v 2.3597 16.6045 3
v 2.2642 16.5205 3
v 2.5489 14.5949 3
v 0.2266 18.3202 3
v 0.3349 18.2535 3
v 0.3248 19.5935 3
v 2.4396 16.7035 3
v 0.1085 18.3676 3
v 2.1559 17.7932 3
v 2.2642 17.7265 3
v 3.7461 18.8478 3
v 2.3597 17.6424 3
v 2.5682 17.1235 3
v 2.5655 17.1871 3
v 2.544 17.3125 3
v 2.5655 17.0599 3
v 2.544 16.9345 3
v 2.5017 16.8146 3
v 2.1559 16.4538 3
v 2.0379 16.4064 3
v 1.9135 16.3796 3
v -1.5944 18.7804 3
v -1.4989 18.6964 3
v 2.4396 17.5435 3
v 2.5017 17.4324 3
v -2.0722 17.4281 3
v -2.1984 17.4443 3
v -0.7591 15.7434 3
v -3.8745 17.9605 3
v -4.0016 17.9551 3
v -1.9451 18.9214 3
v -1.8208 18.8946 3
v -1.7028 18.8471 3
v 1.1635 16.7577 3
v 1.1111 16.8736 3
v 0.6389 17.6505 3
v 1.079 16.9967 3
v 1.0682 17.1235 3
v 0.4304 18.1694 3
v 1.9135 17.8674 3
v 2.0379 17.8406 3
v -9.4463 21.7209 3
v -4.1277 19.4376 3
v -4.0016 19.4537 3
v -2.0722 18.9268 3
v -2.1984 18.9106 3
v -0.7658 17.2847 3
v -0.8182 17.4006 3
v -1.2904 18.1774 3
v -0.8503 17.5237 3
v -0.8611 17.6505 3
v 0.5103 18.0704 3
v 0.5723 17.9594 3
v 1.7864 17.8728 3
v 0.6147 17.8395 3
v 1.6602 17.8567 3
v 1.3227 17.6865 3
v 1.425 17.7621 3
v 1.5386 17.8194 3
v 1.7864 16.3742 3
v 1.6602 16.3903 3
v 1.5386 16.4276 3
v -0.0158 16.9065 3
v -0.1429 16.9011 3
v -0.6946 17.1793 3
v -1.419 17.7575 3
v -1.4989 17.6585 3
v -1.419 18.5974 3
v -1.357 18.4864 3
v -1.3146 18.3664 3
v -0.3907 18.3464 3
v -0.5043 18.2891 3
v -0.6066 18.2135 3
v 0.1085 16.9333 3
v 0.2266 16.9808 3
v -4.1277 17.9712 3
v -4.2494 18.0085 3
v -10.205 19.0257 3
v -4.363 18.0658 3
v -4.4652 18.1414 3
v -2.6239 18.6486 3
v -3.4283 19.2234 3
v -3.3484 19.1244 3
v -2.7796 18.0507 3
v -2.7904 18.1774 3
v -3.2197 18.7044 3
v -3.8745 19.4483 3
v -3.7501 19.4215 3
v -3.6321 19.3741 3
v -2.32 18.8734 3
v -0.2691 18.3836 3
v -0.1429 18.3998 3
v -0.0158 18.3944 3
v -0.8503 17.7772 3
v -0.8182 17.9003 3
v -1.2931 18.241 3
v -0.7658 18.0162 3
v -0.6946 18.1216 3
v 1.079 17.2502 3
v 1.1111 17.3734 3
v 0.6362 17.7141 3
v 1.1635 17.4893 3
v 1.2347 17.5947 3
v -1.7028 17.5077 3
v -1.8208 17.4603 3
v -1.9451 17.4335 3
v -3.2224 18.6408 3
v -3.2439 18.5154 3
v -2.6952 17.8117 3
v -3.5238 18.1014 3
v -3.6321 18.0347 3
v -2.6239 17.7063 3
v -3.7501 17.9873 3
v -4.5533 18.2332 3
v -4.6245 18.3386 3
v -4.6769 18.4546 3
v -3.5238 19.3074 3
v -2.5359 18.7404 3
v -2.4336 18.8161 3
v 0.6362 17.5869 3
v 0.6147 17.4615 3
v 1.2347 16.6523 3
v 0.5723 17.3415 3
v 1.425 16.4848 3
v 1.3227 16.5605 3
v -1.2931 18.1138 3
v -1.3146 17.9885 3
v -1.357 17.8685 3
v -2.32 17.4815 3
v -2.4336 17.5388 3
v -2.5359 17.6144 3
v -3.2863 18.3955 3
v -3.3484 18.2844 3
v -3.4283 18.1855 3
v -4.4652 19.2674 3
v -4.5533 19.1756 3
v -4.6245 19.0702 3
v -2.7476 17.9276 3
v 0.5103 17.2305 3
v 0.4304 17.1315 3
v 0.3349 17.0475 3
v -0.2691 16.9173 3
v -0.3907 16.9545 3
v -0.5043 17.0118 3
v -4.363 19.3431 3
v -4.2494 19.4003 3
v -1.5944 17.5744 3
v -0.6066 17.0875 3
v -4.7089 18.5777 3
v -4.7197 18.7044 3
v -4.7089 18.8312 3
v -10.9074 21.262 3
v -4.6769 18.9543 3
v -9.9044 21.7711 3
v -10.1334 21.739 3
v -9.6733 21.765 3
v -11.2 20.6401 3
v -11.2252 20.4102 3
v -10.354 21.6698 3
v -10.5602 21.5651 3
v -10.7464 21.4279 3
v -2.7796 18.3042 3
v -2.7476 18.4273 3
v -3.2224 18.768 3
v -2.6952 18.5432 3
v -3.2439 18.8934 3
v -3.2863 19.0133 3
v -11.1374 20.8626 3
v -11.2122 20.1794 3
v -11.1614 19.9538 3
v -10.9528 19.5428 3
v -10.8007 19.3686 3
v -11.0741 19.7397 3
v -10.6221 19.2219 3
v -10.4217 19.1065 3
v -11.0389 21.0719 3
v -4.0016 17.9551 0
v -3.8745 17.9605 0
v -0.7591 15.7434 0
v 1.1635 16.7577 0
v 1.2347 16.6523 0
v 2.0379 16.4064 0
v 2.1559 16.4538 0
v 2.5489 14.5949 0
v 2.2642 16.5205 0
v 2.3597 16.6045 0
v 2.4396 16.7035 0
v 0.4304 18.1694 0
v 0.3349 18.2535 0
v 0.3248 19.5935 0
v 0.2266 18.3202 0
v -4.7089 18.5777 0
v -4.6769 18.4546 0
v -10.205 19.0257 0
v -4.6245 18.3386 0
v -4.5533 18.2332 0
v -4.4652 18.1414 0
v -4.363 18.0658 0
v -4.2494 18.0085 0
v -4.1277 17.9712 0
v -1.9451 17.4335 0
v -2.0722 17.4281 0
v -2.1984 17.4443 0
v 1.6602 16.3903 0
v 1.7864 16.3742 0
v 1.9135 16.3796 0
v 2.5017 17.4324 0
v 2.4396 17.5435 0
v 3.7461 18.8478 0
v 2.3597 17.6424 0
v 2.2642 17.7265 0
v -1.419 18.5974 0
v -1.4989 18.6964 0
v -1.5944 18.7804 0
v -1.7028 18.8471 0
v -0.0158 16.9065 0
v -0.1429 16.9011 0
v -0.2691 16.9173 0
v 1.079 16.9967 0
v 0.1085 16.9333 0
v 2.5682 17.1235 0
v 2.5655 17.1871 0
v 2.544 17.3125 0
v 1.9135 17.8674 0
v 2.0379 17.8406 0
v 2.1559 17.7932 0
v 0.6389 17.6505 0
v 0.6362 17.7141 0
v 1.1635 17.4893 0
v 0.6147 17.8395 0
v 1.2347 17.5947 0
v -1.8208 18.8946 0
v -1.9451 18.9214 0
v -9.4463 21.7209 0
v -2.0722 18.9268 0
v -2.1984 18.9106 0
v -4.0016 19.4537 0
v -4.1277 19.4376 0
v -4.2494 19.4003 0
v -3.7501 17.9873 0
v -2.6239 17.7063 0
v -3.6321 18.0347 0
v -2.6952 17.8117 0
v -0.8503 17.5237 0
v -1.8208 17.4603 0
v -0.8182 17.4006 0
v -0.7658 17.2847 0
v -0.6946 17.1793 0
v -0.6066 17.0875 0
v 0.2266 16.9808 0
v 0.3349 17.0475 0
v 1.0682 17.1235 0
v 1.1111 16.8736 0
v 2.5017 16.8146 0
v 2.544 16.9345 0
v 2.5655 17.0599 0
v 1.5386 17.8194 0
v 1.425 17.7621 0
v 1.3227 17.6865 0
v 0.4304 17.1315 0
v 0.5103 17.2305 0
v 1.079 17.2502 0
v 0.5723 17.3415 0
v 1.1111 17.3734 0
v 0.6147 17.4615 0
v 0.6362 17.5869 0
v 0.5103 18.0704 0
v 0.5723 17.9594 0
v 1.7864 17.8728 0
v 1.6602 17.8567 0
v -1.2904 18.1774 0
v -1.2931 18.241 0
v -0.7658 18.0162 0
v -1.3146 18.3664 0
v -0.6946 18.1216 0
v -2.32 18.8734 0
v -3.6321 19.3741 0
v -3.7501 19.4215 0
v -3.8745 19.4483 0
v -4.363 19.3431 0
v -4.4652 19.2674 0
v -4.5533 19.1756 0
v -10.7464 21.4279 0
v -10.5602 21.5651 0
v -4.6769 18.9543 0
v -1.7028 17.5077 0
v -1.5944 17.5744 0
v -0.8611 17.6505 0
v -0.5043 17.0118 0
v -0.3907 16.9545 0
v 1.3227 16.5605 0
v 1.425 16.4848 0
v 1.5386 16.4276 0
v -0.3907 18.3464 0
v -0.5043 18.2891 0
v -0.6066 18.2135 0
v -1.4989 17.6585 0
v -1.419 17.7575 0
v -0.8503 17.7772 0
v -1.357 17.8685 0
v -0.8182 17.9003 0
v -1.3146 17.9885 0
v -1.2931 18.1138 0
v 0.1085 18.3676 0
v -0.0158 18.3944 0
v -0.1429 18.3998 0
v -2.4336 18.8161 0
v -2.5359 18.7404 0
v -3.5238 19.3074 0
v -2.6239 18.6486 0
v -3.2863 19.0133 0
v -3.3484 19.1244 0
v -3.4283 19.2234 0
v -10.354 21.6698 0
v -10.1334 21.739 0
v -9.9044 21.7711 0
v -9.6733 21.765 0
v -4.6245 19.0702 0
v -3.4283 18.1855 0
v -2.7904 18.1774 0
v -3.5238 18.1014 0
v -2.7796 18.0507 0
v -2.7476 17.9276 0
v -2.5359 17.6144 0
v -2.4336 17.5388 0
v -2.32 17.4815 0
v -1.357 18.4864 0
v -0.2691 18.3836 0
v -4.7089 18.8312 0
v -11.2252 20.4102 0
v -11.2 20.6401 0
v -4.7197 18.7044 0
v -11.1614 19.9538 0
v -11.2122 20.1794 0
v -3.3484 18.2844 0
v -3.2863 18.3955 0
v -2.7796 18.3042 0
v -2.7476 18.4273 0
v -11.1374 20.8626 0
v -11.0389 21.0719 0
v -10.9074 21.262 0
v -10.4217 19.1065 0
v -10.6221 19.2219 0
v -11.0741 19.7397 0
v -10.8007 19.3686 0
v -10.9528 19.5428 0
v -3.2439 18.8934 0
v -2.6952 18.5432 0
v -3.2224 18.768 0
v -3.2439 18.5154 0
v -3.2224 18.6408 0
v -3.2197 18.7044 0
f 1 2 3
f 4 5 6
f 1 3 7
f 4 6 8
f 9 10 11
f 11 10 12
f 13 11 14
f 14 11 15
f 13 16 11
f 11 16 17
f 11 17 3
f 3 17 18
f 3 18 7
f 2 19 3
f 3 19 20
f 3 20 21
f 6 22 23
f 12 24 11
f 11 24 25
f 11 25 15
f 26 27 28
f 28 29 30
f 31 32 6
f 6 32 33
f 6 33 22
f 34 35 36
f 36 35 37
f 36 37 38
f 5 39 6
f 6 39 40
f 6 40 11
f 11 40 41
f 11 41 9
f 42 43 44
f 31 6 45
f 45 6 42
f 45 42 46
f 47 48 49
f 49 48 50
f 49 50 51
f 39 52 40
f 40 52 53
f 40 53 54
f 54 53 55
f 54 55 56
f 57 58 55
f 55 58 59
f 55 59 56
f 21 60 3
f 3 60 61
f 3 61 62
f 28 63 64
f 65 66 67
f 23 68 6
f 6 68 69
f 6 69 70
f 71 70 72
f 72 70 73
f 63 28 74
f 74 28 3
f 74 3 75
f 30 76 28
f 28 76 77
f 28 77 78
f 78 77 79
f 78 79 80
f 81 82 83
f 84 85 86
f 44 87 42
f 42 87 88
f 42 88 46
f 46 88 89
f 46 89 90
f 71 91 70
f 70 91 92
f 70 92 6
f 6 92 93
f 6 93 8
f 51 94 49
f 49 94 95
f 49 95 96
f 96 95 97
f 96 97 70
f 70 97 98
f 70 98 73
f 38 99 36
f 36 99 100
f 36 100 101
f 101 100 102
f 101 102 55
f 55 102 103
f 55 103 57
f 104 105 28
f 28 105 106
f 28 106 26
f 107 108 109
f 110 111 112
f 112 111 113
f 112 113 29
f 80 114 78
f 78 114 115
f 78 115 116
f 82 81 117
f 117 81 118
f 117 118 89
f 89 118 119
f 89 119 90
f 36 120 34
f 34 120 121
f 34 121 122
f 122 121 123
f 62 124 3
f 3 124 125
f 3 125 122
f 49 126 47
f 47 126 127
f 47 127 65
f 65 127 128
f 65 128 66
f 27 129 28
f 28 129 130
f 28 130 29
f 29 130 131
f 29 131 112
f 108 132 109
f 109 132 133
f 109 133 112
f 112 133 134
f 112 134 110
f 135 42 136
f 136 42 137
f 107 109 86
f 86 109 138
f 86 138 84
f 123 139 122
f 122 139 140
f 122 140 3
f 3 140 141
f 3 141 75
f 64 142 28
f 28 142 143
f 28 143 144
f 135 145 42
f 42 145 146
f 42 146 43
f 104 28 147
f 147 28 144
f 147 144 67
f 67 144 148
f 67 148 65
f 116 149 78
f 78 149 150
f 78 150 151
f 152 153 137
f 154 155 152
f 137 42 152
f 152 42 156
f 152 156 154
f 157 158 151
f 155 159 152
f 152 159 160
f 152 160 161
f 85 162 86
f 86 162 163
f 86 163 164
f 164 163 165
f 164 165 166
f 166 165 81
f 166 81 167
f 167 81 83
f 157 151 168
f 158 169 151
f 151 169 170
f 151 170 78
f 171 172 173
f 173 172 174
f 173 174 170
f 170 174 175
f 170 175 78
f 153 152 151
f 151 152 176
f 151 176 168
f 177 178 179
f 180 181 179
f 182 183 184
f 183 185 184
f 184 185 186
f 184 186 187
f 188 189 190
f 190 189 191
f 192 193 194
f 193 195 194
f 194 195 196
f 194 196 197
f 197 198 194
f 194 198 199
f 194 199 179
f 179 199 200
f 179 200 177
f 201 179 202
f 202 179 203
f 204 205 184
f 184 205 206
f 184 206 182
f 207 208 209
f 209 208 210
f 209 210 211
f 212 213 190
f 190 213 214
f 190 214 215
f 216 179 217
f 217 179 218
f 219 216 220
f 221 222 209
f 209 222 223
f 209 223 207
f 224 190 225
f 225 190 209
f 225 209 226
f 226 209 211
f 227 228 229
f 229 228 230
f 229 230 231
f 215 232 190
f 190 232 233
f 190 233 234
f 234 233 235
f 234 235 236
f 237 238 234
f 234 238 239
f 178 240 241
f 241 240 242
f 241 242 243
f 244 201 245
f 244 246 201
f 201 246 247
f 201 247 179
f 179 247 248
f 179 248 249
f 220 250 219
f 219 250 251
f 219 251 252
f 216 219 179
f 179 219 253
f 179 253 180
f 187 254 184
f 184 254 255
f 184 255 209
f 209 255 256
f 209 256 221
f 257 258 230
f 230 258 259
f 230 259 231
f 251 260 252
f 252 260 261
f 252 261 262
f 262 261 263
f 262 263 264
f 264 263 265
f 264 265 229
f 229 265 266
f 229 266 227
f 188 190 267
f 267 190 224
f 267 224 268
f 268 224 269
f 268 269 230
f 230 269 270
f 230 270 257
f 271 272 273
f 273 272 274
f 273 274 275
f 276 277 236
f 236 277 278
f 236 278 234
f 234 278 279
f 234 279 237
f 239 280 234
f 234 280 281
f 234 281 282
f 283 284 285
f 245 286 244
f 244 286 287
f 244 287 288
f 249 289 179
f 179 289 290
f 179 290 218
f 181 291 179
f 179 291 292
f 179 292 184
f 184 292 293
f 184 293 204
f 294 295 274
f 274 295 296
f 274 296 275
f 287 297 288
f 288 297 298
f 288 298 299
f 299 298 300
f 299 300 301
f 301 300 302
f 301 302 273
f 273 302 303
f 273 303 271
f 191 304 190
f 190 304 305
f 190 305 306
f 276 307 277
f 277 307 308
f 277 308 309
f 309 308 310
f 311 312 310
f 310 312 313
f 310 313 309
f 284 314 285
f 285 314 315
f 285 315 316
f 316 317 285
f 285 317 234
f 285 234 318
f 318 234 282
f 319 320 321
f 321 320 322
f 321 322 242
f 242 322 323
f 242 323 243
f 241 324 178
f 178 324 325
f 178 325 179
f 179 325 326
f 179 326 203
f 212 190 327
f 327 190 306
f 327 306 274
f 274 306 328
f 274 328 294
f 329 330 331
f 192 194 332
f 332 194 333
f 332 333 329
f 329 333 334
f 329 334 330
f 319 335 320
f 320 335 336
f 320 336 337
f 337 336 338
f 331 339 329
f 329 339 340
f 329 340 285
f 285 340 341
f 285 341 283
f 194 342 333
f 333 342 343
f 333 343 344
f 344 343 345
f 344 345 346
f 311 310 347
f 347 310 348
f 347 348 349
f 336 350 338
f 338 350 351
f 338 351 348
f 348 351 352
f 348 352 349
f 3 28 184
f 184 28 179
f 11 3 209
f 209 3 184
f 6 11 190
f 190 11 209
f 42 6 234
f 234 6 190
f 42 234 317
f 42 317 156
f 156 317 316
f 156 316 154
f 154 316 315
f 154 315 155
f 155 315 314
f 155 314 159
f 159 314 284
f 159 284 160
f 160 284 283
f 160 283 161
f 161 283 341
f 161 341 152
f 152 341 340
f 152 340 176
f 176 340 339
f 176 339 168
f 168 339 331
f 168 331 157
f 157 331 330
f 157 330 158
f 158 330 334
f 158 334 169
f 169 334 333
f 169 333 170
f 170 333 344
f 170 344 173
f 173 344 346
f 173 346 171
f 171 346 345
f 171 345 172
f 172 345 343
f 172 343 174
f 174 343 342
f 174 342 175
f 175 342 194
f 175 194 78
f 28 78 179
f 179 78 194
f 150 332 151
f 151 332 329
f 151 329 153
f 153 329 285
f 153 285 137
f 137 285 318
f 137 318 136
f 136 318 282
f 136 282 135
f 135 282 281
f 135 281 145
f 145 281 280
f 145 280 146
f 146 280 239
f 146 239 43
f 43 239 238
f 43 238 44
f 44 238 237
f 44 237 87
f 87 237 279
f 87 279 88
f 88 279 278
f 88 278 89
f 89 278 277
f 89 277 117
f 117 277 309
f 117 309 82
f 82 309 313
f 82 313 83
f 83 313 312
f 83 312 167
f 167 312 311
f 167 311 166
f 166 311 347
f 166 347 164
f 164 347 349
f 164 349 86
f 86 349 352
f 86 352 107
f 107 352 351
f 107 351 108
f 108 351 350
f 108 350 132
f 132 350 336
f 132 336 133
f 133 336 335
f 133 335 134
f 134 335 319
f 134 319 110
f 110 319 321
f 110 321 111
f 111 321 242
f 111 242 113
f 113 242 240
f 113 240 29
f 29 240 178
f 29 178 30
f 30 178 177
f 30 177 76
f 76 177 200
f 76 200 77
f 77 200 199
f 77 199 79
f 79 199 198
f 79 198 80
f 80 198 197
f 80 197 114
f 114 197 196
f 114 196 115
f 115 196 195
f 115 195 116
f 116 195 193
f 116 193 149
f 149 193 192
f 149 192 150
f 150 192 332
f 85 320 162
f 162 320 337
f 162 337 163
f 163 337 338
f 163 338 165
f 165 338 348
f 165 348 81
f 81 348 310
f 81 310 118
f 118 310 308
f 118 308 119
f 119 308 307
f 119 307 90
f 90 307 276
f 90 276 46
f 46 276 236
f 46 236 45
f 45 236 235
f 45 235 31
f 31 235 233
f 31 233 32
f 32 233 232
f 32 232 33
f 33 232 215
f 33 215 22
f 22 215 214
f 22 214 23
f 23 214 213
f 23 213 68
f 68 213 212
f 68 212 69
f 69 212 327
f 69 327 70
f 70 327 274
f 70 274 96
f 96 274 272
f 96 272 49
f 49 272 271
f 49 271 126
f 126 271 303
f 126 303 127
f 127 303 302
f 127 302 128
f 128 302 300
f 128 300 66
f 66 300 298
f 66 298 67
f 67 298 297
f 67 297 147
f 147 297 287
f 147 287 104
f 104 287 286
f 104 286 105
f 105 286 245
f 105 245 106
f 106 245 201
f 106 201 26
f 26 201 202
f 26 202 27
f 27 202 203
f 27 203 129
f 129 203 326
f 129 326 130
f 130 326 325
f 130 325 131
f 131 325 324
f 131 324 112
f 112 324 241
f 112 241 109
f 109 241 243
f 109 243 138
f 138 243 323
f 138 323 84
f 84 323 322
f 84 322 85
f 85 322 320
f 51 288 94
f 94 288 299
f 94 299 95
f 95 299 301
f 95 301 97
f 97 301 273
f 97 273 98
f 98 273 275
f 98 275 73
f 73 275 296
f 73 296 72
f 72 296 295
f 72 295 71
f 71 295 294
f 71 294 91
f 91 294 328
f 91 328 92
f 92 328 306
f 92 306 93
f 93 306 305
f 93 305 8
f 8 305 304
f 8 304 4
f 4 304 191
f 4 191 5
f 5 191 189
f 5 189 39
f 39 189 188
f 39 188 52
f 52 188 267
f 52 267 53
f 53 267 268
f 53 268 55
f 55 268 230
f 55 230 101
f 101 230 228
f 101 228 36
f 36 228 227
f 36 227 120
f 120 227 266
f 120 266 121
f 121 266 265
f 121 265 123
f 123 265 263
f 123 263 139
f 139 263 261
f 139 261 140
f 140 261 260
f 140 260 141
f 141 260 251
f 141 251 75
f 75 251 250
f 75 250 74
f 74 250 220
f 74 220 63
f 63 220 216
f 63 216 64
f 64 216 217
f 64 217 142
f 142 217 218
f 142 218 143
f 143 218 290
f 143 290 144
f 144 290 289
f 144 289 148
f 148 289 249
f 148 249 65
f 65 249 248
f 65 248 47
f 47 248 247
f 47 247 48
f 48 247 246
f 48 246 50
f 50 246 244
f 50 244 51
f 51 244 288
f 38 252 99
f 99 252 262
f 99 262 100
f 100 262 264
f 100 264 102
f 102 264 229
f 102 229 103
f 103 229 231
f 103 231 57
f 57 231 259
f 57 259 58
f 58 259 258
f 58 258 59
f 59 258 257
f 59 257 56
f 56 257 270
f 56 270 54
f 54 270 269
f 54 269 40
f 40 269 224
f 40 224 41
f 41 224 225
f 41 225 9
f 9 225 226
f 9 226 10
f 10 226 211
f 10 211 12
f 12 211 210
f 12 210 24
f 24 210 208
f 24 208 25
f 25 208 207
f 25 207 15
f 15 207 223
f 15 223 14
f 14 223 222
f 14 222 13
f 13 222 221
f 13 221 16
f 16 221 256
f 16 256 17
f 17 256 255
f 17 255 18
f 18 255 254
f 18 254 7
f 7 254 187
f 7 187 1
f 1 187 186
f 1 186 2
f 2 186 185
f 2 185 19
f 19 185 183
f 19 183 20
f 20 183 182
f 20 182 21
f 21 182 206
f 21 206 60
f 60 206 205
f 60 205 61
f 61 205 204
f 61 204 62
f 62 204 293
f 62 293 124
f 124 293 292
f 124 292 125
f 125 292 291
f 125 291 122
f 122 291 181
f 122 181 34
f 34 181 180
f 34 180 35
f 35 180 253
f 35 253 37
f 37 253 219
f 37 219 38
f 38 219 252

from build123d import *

# Parameters (mm, degrees)
SKETCH1_R           = 0.75
BOSS_EXTRUDE1_DEPTH = 3


with BuildPart() as part:
    # Sketch1 → Boss-Extrude1 (new body)
    with BuildSketch(Plane.XY):
        with BuildLine():
            Line((-0.759056855, 15.743363502), (-10.20503728, 19.025657487))
            ThreePointArc((-10.20503728, 19.025657487), (-11.173300847, 20.75263915), (-9.446319184, 21.720902717))
            Line((-9.446319184, 21.720902717), (0.32477793, 19.593542575))
            Line((0.32477793, 19.593542575), (3.74605929, 18.847766175))
            Line((3.74605929, 18.847766175), (2.548854641, 14.594855726))
            Line((2.548854641, 14.594855726), (-0.759056855, 15.743363502))
        make_face()
        with Locations((-3.96973296, 18.704410315)):
            Circle(SKETCH1_R, mode=Mode.SUBTRACT)
        with Locations((-2.040406529, 18.177438286)):
            Circle(SKETCH1_R, mode=Mode.SUBTRACT)
        with Locations((-0.111080097, 17.650466256)):
            Circle(SKETCH1_R, mode=Mode.SUBTRACT)
        with Locations((1.818246335, 17.123494227)):
            Circle(SKETCH1_R, mode=Mode.SUBTRACT)
    extrude(amount=BOSS_EXTRUDE1_DEPTH)


solid = part.part
